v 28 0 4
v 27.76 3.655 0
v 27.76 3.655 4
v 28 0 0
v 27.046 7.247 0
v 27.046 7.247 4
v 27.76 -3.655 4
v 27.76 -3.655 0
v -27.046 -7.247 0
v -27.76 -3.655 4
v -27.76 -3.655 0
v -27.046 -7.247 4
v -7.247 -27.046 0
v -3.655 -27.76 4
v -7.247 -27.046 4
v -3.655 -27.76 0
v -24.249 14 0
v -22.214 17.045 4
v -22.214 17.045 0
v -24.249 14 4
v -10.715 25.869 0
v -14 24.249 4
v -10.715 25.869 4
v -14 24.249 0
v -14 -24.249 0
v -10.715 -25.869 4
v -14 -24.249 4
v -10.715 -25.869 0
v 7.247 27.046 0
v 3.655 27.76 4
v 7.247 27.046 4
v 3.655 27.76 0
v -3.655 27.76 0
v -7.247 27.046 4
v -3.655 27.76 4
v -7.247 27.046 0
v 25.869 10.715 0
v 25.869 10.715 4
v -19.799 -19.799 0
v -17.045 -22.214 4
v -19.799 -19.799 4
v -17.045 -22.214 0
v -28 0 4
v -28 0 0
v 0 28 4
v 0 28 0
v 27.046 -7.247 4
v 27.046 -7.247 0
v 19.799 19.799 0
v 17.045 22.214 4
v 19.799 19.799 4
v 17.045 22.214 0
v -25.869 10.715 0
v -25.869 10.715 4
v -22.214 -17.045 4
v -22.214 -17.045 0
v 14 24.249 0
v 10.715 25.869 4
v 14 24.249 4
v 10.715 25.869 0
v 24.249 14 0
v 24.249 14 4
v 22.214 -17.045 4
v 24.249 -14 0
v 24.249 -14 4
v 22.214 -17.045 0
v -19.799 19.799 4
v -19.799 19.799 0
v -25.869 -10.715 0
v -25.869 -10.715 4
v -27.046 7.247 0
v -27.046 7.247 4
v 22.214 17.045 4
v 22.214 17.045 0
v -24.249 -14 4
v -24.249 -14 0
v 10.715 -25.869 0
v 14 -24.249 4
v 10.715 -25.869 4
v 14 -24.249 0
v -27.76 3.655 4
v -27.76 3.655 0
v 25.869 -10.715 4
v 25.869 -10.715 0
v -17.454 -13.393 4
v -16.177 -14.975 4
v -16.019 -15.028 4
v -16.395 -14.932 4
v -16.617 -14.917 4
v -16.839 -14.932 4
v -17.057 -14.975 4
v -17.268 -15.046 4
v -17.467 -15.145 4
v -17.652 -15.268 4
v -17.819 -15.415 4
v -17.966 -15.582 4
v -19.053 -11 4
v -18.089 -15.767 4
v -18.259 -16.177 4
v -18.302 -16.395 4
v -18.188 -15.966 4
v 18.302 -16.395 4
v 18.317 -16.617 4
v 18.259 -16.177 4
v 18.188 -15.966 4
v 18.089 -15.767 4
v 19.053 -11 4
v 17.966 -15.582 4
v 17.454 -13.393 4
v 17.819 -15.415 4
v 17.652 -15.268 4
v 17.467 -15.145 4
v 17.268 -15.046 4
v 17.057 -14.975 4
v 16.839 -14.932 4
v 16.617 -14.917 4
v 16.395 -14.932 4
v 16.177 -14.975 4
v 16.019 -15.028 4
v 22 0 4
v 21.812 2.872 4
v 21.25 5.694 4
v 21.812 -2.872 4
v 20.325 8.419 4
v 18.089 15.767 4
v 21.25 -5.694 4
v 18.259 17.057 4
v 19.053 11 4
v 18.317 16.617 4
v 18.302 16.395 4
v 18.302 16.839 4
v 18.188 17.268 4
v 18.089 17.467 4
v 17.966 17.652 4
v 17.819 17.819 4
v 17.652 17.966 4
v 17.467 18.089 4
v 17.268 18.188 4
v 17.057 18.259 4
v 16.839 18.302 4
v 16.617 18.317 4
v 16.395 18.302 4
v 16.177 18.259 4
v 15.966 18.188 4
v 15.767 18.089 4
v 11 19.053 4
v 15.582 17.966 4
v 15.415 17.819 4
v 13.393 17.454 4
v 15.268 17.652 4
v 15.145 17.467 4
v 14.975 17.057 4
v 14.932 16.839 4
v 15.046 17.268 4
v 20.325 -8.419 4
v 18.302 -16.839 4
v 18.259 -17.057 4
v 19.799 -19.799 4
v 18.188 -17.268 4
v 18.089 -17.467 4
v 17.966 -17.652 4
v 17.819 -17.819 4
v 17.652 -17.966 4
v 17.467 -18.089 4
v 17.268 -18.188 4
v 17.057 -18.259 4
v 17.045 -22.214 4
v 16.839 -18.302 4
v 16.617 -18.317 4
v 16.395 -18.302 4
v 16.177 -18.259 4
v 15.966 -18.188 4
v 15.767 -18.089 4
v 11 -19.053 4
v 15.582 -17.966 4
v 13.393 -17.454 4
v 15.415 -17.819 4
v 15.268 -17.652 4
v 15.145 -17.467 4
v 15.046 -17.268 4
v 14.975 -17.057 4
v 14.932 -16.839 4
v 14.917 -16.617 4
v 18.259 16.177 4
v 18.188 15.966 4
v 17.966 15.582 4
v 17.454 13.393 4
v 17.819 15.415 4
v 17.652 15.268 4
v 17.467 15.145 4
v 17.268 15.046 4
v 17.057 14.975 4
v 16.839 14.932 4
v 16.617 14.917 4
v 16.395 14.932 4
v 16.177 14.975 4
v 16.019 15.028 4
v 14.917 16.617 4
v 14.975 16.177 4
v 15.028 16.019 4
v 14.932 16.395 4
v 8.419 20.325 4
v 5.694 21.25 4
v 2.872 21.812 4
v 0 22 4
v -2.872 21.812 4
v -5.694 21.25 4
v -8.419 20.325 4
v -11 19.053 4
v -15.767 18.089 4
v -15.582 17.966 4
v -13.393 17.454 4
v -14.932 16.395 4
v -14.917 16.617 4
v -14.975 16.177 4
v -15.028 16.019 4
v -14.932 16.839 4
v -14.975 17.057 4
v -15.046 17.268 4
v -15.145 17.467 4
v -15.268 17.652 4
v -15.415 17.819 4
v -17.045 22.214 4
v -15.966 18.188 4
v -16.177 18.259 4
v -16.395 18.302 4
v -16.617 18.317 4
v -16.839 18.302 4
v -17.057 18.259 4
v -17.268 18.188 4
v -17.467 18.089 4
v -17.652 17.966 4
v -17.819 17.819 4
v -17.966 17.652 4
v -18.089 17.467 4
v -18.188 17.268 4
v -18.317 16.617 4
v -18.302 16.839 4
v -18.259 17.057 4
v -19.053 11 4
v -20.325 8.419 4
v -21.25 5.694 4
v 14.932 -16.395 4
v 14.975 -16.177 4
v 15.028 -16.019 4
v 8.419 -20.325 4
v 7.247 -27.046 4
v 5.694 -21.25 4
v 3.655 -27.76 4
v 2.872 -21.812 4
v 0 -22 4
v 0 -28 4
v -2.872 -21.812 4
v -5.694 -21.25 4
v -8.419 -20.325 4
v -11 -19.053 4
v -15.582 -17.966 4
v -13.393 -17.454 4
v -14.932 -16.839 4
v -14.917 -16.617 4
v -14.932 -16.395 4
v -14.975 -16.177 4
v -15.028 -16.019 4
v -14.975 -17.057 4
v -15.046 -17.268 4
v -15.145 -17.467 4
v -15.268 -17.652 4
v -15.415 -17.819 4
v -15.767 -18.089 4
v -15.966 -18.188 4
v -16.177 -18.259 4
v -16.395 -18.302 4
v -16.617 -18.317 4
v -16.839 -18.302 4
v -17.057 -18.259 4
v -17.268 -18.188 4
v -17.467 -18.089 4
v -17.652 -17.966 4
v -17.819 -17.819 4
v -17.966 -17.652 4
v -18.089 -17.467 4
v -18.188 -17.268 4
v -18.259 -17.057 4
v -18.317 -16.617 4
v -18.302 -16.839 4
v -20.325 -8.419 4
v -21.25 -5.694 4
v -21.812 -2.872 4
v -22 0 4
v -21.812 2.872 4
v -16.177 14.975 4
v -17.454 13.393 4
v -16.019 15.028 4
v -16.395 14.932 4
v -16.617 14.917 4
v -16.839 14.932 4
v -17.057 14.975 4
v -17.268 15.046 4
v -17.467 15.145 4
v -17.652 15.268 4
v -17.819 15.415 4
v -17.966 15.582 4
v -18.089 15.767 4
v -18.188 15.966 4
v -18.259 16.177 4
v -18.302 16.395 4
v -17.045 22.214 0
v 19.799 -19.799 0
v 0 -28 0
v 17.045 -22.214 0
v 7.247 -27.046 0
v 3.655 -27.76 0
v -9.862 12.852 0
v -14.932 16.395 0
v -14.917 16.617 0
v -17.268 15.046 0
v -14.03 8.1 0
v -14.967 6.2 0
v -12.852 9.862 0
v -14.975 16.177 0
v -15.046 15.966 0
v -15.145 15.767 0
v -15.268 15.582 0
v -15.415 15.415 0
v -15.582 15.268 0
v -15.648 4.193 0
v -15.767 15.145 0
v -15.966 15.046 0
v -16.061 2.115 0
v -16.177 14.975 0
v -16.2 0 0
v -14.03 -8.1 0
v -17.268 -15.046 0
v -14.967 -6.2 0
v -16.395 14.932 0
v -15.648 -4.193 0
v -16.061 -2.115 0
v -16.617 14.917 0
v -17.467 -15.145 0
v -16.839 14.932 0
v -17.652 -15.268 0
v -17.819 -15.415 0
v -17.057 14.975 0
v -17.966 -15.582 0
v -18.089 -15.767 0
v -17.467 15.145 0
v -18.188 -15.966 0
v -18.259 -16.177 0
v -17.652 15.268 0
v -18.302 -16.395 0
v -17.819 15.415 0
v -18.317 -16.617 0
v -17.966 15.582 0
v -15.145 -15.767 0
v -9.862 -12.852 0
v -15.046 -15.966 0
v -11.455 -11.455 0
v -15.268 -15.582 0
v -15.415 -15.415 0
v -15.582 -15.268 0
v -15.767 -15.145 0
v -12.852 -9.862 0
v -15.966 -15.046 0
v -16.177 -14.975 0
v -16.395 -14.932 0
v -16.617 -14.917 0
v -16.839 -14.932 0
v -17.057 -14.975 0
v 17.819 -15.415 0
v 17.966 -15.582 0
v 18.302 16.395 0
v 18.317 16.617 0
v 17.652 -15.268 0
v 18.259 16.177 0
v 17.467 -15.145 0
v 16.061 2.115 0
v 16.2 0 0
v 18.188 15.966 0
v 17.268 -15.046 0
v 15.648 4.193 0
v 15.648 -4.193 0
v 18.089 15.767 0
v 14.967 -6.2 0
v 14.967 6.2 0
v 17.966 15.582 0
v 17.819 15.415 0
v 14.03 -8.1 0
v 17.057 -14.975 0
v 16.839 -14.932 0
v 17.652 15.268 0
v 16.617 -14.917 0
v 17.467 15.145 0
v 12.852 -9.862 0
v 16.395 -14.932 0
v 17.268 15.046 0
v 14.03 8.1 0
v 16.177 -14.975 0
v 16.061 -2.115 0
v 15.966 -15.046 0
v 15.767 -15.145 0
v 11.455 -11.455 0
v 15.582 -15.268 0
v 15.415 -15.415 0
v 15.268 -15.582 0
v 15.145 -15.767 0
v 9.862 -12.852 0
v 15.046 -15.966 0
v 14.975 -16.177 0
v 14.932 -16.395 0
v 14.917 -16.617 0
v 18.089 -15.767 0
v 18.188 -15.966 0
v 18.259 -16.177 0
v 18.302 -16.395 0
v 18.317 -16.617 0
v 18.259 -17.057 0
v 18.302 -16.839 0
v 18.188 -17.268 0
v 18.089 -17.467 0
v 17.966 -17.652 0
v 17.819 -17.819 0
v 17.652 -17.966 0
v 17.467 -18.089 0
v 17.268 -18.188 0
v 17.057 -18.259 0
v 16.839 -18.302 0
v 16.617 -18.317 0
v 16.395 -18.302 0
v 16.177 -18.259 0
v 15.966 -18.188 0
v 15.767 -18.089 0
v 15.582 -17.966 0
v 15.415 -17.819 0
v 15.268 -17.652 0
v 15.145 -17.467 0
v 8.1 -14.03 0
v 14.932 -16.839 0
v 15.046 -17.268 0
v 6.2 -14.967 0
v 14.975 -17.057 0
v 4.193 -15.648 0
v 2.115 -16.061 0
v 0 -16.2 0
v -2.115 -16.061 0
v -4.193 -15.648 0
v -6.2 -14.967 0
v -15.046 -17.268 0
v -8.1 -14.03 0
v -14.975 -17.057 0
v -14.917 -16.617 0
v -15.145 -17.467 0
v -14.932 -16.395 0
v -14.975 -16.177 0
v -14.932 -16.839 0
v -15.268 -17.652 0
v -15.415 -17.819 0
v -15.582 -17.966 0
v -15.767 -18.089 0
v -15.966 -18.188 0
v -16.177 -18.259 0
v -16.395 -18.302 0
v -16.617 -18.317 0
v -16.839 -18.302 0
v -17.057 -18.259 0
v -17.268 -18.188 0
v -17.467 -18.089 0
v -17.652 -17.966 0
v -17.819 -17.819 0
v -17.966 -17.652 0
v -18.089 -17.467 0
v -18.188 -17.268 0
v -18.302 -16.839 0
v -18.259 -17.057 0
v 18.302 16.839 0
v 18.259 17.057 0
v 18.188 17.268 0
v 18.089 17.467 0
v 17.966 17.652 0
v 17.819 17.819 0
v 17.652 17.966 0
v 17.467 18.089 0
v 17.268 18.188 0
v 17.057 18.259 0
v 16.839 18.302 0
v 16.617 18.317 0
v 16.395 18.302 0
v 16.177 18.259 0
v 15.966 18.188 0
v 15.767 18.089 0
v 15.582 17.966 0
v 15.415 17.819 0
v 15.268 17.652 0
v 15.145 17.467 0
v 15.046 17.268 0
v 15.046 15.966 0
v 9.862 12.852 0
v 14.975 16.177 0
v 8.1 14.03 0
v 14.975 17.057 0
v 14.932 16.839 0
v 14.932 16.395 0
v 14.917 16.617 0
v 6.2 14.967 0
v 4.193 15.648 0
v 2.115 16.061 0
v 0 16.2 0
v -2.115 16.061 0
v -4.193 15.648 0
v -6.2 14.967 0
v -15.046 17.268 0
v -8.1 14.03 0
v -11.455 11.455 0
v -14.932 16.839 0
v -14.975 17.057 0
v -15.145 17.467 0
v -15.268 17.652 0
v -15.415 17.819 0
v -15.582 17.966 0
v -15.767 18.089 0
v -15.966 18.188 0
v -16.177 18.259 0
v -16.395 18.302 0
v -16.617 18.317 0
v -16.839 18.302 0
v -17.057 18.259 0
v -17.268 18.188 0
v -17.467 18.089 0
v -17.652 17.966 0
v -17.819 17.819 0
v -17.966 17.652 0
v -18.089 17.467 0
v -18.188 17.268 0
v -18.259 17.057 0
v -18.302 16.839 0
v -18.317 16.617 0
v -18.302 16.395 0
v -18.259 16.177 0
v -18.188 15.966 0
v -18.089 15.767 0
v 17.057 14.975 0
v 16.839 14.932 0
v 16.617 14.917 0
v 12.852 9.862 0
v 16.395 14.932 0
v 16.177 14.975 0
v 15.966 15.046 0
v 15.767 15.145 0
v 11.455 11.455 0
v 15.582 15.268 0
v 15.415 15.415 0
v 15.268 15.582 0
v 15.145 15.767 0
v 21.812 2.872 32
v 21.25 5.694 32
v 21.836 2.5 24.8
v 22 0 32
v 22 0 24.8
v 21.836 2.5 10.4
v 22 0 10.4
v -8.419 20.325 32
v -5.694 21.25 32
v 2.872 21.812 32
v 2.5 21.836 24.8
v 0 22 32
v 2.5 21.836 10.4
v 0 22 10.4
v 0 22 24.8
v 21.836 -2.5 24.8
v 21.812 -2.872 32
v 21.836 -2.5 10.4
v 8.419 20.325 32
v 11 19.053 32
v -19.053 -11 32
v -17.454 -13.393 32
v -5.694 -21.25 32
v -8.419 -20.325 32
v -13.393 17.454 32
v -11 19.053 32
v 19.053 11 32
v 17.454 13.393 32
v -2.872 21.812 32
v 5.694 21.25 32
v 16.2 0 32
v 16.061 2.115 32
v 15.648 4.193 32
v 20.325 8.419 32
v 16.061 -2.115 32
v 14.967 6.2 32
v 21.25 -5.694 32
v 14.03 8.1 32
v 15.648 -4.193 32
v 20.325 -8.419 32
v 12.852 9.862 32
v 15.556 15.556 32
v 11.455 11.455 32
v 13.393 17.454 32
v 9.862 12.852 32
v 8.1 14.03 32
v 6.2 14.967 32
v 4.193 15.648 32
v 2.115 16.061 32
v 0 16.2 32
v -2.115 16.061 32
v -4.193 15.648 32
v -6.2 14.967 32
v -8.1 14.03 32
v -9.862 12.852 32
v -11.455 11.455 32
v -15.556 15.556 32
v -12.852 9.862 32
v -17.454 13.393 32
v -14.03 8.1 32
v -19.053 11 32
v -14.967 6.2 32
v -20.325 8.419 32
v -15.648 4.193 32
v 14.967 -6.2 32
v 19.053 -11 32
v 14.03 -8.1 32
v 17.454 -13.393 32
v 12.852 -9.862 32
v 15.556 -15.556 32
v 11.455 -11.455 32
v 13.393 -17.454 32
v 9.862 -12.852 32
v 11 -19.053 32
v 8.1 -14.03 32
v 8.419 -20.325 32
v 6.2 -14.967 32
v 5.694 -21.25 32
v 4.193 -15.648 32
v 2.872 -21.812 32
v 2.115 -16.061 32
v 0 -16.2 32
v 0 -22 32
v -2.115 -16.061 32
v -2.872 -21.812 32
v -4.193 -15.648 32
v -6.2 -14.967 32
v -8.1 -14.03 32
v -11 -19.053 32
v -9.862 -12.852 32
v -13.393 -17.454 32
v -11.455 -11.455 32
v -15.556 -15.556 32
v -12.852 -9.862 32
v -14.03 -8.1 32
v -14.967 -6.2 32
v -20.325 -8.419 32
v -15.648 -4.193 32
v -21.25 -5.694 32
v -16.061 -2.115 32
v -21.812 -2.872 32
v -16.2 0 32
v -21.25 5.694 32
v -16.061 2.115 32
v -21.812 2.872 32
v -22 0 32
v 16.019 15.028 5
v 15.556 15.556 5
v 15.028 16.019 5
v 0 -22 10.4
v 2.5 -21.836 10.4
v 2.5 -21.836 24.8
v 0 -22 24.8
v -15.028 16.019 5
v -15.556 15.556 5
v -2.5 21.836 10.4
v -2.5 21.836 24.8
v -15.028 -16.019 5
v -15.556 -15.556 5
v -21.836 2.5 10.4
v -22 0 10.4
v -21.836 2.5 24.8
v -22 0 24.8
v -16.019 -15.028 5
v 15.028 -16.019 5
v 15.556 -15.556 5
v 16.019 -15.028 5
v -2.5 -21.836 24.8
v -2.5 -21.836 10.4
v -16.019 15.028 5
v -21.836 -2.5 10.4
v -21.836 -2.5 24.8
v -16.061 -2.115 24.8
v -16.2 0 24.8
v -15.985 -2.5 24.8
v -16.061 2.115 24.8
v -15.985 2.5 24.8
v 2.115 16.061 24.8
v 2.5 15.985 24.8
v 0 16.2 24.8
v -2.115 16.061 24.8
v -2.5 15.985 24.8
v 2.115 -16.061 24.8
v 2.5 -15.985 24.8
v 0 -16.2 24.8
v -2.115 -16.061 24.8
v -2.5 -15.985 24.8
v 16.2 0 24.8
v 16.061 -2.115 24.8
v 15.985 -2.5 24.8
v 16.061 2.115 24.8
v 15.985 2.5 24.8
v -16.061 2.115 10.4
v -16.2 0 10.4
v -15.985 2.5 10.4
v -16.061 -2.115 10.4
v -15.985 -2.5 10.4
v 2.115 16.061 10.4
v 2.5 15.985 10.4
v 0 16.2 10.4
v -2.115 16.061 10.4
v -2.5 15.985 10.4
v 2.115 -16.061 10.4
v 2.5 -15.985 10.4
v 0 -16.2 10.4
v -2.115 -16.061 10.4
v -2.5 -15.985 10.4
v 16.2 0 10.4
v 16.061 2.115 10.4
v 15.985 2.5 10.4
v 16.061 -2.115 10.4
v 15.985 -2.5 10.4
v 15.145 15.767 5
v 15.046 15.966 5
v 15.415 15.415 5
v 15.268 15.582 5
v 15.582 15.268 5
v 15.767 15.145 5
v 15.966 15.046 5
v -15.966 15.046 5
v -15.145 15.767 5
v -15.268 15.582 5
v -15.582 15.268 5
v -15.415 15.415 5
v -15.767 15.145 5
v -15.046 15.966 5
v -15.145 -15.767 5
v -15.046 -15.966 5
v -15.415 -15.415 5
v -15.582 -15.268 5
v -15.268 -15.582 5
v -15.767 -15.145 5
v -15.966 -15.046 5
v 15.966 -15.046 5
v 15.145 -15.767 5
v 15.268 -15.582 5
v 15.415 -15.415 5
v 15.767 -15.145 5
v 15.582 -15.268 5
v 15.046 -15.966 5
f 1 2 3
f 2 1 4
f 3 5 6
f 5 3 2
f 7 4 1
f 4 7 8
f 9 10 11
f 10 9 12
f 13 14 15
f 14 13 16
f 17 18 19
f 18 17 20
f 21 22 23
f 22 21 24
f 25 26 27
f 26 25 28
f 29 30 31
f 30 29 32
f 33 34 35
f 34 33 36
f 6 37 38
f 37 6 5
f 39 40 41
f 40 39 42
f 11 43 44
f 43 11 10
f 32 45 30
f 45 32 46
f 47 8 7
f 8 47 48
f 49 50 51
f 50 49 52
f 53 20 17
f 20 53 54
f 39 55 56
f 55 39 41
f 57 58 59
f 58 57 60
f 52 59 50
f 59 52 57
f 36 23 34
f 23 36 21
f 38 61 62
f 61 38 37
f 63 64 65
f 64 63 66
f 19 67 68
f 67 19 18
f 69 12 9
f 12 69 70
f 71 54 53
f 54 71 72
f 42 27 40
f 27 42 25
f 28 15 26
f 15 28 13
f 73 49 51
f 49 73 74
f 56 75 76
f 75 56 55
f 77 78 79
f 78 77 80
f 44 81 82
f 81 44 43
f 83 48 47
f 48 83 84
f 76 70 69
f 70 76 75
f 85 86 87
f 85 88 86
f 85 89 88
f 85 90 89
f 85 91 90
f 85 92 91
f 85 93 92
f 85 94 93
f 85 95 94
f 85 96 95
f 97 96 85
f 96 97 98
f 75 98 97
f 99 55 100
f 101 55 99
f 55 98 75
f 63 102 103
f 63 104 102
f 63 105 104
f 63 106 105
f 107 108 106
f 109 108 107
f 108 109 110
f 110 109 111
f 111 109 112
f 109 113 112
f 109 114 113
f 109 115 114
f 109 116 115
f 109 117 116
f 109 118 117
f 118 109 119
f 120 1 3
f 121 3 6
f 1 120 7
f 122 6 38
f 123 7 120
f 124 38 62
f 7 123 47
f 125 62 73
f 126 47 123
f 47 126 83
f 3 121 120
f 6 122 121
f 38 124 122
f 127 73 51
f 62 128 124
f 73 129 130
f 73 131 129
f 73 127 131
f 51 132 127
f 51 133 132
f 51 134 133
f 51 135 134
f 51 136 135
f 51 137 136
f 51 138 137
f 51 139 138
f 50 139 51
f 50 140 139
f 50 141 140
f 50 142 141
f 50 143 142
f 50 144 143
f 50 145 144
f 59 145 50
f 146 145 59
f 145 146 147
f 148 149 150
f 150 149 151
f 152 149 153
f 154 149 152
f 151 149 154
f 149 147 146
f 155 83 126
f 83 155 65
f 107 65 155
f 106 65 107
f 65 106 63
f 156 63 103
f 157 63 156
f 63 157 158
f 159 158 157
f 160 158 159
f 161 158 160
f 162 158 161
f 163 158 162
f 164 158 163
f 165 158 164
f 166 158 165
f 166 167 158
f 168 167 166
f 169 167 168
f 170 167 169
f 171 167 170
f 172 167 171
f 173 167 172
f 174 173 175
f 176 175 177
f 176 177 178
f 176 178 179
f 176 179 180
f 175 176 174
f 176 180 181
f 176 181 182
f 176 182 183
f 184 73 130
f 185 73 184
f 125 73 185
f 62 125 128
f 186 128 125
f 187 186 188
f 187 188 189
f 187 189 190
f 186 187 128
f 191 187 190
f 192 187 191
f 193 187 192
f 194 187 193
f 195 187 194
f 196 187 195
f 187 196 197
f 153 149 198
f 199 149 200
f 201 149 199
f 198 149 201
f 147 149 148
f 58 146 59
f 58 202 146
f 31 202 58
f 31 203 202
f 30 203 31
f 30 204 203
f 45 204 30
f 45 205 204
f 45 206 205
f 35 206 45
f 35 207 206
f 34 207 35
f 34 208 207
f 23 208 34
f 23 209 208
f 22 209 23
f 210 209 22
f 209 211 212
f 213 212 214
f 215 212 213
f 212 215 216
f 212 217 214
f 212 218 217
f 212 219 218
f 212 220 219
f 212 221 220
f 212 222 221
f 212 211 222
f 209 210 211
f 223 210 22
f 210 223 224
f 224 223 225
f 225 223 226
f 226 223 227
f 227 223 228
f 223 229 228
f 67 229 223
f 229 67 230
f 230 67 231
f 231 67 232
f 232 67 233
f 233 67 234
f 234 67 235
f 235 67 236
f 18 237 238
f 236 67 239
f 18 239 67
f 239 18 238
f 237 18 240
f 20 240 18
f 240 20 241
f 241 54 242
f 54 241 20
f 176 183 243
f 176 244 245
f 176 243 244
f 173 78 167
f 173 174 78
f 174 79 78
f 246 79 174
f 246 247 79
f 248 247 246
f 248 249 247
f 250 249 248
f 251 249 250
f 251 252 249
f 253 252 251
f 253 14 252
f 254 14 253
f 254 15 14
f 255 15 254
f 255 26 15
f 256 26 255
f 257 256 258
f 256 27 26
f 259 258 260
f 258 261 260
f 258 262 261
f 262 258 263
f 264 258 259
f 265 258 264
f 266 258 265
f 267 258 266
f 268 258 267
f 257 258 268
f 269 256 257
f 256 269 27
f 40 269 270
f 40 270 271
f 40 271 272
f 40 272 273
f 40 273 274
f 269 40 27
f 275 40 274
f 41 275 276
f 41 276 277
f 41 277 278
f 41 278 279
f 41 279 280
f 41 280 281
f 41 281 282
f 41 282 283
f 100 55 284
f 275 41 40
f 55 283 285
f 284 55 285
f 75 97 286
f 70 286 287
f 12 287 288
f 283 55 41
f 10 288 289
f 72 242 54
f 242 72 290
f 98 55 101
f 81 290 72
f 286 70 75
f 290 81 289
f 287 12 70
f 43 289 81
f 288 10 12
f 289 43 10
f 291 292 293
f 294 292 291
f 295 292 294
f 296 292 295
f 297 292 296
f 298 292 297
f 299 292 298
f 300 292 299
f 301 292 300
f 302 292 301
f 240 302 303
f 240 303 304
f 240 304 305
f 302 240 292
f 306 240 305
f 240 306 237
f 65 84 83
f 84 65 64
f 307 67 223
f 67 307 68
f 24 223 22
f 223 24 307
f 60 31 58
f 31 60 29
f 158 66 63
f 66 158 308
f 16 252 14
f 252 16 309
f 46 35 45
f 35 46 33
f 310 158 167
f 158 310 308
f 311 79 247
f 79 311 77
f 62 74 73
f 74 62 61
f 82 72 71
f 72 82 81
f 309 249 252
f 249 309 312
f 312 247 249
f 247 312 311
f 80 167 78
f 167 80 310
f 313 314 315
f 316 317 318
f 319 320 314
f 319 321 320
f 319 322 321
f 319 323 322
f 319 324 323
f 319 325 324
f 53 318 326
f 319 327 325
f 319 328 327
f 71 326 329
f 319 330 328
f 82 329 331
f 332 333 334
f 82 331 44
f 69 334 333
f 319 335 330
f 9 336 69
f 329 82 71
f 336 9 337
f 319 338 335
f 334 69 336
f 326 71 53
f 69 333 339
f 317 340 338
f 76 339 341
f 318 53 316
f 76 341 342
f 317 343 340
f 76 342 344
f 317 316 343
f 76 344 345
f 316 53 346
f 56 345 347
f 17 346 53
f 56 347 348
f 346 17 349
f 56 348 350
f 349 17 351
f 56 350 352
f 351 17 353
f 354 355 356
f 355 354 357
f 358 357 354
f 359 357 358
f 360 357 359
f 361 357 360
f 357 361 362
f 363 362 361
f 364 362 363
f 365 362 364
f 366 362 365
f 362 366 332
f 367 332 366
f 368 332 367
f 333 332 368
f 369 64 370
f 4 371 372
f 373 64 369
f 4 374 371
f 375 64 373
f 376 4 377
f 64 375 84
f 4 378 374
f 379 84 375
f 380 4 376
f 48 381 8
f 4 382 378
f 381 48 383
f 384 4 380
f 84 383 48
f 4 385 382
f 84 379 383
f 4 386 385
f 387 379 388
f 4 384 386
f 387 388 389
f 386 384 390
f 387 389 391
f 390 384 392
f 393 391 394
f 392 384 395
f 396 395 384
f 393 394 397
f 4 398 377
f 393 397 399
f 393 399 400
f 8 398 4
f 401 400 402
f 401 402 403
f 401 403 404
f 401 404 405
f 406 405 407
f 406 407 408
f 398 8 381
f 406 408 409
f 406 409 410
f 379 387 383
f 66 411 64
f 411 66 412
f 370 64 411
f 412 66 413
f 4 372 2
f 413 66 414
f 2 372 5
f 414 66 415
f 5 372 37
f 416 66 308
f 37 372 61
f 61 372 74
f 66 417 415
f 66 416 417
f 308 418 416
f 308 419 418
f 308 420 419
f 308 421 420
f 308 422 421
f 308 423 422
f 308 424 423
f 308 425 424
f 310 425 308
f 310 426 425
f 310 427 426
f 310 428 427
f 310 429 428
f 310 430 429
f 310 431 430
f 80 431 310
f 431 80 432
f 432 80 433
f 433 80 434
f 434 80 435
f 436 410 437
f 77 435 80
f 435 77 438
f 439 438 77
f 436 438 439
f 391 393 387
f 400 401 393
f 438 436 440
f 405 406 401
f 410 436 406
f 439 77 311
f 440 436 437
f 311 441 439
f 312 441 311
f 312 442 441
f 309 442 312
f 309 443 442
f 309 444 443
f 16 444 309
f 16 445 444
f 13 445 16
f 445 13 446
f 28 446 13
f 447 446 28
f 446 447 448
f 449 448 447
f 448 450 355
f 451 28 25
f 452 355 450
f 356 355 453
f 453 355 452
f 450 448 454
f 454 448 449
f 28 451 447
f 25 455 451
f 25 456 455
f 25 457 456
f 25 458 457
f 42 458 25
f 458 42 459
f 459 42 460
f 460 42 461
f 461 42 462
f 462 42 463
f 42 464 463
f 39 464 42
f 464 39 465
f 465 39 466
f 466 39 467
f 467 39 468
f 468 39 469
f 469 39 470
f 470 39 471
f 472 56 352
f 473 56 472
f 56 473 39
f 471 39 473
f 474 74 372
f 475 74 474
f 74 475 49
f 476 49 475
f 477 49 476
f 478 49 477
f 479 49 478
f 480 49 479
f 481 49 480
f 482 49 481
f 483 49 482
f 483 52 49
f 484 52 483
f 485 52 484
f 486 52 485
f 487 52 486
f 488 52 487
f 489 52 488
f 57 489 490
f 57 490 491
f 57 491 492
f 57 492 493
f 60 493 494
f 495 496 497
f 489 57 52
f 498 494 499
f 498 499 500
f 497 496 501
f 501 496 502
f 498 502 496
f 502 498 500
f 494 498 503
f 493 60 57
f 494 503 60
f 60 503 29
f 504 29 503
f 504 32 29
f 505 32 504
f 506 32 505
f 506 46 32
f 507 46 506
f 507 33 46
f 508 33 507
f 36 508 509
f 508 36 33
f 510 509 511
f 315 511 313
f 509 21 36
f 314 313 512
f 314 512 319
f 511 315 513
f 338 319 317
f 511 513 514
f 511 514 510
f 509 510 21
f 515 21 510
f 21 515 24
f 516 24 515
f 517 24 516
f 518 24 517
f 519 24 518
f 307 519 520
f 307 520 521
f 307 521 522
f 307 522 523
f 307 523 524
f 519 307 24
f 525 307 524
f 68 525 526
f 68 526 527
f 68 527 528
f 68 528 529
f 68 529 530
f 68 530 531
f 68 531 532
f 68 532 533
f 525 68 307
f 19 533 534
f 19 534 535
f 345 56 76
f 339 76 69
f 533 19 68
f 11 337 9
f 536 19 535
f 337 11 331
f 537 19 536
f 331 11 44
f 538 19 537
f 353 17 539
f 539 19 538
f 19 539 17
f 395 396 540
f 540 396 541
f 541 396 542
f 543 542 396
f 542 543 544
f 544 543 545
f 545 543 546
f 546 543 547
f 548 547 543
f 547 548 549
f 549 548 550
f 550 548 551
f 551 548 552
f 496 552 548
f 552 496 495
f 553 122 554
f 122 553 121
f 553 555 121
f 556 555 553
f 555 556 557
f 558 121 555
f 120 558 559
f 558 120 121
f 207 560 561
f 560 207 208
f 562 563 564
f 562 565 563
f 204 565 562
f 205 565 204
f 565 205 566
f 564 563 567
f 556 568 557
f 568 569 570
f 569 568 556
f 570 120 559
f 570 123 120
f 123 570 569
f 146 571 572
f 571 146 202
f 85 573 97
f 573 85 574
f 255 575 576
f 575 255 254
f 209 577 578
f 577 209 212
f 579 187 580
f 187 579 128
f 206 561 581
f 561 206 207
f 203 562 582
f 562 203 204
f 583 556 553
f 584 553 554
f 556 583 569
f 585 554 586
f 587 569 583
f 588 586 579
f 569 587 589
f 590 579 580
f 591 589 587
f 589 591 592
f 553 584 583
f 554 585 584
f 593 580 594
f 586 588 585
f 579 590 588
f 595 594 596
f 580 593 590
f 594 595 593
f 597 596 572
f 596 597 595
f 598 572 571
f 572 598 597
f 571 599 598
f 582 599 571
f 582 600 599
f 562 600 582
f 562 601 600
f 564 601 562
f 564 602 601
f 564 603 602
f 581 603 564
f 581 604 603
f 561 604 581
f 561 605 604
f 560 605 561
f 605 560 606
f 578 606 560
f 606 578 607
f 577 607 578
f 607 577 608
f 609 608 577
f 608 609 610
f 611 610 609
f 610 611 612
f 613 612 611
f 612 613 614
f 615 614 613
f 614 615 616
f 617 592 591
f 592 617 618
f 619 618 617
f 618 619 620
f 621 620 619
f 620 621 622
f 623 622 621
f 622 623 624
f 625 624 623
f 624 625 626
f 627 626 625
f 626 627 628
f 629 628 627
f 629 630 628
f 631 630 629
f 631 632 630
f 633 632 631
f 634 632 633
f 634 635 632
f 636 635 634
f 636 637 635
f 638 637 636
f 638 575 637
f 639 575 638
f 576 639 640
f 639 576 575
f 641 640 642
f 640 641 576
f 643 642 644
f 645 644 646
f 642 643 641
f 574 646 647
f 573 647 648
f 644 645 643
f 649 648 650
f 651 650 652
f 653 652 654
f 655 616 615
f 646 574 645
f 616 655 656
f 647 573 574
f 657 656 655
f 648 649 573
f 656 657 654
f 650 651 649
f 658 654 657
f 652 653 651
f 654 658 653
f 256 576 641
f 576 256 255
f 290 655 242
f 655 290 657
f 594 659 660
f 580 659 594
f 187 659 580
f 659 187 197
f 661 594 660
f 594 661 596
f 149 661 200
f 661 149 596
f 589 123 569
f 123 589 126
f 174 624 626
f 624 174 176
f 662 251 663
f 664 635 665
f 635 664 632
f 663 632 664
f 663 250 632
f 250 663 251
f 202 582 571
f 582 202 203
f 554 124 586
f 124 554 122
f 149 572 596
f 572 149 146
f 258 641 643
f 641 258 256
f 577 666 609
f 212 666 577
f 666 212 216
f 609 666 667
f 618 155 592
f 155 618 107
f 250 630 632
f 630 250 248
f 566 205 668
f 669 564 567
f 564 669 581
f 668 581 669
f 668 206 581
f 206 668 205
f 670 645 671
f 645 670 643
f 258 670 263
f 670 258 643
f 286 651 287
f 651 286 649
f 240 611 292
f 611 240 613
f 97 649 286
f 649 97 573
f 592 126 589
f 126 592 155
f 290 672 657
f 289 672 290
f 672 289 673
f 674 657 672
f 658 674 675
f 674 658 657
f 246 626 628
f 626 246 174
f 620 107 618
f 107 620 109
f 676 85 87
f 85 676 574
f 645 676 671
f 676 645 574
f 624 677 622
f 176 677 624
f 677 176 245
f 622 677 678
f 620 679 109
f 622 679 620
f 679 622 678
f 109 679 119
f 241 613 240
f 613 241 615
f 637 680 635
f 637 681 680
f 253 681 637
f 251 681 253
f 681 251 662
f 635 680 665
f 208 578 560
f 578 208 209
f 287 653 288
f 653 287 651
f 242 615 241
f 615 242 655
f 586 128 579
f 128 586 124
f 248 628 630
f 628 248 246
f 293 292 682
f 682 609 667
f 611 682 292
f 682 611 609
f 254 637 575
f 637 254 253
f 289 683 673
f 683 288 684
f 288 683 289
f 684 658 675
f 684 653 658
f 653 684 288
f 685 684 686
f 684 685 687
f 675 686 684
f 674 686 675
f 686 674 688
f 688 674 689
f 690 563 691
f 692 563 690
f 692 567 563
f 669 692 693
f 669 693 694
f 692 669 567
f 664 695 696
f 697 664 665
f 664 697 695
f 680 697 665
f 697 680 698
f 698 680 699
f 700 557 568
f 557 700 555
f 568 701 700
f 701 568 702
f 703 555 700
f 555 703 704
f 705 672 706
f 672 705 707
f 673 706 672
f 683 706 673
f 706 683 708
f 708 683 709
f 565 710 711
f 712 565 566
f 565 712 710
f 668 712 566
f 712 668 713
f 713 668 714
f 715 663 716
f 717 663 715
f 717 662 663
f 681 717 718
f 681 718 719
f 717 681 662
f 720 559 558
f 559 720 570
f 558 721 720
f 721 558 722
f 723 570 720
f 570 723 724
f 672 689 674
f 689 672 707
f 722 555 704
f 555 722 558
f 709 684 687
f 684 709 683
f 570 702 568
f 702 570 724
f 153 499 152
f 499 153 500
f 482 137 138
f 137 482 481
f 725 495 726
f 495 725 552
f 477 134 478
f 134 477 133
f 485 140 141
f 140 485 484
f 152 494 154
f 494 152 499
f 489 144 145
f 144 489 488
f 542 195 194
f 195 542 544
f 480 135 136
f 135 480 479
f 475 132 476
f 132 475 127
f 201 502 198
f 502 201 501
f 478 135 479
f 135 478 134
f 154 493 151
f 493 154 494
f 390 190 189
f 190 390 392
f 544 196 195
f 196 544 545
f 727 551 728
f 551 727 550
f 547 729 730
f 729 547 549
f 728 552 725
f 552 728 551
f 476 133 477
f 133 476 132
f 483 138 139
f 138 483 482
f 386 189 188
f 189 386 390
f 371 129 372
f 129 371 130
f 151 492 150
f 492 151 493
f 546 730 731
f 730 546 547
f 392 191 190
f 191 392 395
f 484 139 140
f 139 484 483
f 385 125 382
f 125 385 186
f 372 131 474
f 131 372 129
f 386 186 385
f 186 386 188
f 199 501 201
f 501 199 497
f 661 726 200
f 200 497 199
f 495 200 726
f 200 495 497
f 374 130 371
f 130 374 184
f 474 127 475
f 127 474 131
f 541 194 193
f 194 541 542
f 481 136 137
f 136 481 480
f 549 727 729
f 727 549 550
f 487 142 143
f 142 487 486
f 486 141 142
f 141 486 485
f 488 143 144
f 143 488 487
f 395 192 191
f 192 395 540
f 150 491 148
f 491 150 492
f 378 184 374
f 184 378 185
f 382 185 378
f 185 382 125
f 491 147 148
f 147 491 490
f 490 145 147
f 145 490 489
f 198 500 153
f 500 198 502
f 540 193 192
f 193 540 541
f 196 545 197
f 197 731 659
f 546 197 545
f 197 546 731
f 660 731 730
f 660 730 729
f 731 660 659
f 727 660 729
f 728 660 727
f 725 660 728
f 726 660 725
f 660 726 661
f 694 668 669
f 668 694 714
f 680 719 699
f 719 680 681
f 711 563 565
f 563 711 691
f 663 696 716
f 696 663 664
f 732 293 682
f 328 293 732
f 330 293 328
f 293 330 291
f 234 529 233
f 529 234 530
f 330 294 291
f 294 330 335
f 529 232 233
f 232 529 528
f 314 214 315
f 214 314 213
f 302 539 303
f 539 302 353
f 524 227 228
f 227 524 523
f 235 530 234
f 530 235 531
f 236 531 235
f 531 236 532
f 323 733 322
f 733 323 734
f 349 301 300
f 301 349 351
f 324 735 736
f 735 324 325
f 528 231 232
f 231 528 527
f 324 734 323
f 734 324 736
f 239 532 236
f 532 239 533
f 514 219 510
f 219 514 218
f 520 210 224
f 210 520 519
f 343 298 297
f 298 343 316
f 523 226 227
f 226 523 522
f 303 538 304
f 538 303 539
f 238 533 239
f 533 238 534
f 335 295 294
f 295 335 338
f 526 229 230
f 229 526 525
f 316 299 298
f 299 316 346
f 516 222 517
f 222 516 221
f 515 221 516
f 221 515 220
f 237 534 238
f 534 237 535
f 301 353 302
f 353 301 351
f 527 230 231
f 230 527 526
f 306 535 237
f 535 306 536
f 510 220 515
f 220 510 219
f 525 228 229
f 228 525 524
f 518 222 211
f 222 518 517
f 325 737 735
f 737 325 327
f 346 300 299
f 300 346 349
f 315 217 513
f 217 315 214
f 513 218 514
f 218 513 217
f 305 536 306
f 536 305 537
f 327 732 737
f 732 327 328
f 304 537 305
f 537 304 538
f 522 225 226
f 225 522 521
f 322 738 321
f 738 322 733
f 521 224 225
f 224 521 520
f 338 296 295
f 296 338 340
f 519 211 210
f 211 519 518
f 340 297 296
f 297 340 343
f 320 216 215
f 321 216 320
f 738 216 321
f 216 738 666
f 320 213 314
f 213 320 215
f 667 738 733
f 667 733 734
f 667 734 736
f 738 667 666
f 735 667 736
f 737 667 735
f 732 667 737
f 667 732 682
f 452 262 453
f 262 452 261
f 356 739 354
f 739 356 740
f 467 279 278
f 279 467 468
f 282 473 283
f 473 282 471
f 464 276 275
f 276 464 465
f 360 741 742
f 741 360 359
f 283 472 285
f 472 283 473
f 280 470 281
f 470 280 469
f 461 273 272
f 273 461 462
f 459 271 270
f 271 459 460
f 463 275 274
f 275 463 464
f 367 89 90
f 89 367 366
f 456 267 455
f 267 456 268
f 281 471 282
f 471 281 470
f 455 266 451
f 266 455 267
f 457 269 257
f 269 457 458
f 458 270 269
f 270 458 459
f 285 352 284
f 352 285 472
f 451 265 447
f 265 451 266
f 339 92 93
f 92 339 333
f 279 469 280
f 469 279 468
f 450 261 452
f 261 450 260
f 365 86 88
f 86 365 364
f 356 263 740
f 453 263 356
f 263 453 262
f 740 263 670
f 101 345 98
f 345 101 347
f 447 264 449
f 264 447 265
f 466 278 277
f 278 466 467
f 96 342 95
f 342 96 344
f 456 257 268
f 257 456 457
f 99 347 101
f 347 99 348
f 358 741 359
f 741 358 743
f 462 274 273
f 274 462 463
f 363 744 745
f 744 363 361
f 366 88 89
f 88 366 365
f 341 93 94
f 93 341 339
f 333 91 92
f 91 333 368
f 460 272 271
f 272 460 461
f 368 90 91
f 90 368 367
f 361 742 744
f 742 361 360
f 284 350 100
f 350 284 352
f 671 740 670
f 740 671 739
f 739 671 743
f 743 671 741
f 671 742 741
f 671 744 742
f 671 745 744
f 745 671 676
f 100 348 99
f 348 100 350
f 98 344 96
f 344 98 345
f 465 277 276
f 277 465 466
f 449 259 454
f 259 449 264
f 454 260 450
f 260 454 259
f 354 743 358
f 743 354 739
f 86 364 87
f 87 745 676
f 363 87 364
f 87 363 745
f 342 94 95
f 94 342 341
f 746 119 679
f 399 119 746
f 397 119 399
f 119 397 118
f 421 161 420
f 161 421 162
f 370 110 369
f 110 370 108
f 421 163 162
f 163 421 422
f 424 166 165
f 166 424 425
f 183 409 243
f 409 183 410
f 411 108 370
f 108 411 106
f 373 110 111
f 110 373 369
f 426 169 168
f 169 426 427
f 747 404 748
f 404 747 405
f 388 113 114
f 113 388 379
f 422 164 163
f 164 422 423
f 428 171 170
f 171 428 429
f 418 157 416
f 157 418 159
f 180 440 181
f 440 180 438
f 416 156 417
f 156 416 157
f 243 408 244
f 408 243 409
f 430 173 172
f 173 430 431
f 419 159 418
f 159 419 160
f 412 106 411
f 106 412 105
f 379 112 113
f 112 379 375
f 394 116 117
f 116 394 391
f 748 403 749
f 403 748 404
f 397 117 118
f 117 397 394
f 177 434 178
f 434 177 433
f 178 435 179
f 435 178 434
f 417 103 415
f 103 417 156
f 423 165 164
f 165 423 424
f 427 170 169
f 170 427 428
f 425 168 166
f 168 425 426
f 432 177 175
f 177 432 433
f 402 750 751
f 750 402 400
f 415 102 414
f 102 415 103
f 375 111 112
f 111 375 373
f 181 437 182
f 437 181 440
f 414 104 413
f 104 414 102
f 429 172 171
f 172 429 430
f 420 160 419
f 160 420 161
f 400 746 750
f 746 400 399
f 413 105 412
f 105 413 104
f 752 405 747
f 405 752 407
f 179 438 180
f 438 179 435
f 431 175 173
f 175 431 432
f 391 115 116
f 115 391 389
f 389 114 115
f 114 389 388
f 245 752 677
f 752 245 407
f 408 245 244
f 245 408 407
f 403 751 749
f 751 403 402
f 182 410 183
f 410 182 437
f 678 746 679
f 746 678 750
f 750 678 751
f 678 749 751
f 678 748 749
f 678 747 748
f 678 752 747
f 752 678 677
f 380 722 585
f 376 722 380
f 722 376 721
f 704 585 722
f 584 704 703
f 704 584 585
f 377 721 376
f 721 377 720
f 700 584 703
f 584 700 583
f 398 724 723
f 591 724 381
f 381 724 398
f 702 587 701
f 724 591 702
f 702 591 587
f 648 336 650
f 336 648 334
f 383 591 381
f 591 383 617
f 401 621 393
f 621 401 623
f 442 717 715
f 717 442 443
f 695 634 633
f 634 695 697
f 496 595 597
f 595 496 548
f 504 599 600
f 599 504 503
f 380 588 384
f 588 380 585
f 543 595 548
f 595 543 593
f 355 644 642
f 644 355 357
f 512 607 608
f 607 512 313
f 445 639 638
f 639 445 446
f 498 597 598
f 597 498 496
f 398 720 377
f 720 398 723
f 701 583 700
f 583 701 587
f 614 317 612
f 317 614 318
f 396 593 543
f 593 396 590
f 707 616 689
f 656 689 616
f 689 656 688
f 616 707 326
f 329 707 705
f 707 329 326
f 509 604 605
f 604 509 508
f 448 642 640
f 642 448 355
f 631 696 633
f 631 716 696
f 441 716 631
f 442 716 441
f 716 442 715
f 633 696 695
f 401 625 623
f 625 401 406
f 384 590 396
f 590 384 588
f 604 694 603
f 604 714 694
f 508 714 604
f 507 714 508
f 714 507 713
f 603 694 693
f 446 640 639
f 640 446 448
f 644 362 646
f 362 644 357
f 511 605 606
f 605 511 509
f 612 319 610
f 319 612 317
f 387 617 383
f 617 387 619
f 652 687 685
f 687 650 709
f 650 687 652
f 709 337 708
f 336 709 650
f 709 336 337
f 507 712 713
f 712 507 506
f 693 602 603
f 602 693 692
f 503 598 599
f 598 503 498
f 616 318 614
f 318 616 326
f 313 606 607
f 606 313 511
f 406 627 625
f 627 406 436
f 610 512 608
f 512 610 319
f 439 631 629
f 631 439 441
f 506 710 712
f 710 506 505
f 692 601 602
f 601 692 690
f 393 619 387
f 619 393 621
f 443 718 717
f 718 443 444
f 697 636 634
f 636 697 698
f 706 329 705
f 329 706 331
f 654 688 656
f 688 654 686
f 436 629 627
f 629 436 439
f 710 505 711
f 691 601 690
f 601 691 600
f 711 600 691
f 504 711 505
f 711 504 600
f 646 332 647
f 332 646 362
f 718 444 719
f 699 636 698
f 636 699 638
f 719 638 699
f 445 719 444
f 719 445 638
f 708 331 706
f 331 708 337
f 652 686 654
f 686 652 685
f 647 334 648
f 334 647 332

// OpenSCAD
// ============================================================================
// Get Me An Alt — Parametric OpenSCAD Module
// Part: PRT-03 — Submersible Pump Isolation Cradle (pump-mount)
// Function: Holds OTS-01 pump at center of reservoir floor.
// Target Bounding Box (mm): [56, 56, 32]
// Print Material: PETG | Min Wall: >= 1.6mm | Tolerance: 0.2mm
// ============================================================================
$fn = 48;
part_width = 56;
part_depth = 56;
part_height = 32;
wall_thickness = 2.4;
floor_thickness = 2.4;
corner_radius = 4;
tolerance = 0.2;
m3_clearance_d = 3.4; // M3 screw clearance hole (3.0mm + 2*0.2mm)

module rounded_rect_prism(w, d, h, r) {
  cr = max(0.5, min(r, min(w, d) / 2 - 0.1));
  linear_extrude(height = h)
    offset(r = cr)
      offset(r = -cr)
        square([w, d], center = true);
}

module part_pump_mount() {
  difference() {
    union() {
      // Base mounting flange
      cylinder(h = 4, r = 28);
      // Cylindrical isolation collar
      cylinder(h = part_height, r = 22);
    }
    // Central bore with 0.2mm fit tolerance
    translate([0, 0, -1])
      cylinder(h = part_height + 2, r = 16 + tolerance);
    // Side water intake relief slots
    for (ang = [0, 90, 180, 270]) {
      rotate([0, 0, ang])
        translate([0, 0, part_height * 0.55])
          cube([61.6, 5.0, part_height * 0.45], center = true);
      // Flange M3 anchor holes
      rotate([0, 0, ang + 45])
        translate([23.5, 0, -1])
          cylinder(h = 6, d = m3_clearance_d);
    }
  }
}

part_pump_mount();
